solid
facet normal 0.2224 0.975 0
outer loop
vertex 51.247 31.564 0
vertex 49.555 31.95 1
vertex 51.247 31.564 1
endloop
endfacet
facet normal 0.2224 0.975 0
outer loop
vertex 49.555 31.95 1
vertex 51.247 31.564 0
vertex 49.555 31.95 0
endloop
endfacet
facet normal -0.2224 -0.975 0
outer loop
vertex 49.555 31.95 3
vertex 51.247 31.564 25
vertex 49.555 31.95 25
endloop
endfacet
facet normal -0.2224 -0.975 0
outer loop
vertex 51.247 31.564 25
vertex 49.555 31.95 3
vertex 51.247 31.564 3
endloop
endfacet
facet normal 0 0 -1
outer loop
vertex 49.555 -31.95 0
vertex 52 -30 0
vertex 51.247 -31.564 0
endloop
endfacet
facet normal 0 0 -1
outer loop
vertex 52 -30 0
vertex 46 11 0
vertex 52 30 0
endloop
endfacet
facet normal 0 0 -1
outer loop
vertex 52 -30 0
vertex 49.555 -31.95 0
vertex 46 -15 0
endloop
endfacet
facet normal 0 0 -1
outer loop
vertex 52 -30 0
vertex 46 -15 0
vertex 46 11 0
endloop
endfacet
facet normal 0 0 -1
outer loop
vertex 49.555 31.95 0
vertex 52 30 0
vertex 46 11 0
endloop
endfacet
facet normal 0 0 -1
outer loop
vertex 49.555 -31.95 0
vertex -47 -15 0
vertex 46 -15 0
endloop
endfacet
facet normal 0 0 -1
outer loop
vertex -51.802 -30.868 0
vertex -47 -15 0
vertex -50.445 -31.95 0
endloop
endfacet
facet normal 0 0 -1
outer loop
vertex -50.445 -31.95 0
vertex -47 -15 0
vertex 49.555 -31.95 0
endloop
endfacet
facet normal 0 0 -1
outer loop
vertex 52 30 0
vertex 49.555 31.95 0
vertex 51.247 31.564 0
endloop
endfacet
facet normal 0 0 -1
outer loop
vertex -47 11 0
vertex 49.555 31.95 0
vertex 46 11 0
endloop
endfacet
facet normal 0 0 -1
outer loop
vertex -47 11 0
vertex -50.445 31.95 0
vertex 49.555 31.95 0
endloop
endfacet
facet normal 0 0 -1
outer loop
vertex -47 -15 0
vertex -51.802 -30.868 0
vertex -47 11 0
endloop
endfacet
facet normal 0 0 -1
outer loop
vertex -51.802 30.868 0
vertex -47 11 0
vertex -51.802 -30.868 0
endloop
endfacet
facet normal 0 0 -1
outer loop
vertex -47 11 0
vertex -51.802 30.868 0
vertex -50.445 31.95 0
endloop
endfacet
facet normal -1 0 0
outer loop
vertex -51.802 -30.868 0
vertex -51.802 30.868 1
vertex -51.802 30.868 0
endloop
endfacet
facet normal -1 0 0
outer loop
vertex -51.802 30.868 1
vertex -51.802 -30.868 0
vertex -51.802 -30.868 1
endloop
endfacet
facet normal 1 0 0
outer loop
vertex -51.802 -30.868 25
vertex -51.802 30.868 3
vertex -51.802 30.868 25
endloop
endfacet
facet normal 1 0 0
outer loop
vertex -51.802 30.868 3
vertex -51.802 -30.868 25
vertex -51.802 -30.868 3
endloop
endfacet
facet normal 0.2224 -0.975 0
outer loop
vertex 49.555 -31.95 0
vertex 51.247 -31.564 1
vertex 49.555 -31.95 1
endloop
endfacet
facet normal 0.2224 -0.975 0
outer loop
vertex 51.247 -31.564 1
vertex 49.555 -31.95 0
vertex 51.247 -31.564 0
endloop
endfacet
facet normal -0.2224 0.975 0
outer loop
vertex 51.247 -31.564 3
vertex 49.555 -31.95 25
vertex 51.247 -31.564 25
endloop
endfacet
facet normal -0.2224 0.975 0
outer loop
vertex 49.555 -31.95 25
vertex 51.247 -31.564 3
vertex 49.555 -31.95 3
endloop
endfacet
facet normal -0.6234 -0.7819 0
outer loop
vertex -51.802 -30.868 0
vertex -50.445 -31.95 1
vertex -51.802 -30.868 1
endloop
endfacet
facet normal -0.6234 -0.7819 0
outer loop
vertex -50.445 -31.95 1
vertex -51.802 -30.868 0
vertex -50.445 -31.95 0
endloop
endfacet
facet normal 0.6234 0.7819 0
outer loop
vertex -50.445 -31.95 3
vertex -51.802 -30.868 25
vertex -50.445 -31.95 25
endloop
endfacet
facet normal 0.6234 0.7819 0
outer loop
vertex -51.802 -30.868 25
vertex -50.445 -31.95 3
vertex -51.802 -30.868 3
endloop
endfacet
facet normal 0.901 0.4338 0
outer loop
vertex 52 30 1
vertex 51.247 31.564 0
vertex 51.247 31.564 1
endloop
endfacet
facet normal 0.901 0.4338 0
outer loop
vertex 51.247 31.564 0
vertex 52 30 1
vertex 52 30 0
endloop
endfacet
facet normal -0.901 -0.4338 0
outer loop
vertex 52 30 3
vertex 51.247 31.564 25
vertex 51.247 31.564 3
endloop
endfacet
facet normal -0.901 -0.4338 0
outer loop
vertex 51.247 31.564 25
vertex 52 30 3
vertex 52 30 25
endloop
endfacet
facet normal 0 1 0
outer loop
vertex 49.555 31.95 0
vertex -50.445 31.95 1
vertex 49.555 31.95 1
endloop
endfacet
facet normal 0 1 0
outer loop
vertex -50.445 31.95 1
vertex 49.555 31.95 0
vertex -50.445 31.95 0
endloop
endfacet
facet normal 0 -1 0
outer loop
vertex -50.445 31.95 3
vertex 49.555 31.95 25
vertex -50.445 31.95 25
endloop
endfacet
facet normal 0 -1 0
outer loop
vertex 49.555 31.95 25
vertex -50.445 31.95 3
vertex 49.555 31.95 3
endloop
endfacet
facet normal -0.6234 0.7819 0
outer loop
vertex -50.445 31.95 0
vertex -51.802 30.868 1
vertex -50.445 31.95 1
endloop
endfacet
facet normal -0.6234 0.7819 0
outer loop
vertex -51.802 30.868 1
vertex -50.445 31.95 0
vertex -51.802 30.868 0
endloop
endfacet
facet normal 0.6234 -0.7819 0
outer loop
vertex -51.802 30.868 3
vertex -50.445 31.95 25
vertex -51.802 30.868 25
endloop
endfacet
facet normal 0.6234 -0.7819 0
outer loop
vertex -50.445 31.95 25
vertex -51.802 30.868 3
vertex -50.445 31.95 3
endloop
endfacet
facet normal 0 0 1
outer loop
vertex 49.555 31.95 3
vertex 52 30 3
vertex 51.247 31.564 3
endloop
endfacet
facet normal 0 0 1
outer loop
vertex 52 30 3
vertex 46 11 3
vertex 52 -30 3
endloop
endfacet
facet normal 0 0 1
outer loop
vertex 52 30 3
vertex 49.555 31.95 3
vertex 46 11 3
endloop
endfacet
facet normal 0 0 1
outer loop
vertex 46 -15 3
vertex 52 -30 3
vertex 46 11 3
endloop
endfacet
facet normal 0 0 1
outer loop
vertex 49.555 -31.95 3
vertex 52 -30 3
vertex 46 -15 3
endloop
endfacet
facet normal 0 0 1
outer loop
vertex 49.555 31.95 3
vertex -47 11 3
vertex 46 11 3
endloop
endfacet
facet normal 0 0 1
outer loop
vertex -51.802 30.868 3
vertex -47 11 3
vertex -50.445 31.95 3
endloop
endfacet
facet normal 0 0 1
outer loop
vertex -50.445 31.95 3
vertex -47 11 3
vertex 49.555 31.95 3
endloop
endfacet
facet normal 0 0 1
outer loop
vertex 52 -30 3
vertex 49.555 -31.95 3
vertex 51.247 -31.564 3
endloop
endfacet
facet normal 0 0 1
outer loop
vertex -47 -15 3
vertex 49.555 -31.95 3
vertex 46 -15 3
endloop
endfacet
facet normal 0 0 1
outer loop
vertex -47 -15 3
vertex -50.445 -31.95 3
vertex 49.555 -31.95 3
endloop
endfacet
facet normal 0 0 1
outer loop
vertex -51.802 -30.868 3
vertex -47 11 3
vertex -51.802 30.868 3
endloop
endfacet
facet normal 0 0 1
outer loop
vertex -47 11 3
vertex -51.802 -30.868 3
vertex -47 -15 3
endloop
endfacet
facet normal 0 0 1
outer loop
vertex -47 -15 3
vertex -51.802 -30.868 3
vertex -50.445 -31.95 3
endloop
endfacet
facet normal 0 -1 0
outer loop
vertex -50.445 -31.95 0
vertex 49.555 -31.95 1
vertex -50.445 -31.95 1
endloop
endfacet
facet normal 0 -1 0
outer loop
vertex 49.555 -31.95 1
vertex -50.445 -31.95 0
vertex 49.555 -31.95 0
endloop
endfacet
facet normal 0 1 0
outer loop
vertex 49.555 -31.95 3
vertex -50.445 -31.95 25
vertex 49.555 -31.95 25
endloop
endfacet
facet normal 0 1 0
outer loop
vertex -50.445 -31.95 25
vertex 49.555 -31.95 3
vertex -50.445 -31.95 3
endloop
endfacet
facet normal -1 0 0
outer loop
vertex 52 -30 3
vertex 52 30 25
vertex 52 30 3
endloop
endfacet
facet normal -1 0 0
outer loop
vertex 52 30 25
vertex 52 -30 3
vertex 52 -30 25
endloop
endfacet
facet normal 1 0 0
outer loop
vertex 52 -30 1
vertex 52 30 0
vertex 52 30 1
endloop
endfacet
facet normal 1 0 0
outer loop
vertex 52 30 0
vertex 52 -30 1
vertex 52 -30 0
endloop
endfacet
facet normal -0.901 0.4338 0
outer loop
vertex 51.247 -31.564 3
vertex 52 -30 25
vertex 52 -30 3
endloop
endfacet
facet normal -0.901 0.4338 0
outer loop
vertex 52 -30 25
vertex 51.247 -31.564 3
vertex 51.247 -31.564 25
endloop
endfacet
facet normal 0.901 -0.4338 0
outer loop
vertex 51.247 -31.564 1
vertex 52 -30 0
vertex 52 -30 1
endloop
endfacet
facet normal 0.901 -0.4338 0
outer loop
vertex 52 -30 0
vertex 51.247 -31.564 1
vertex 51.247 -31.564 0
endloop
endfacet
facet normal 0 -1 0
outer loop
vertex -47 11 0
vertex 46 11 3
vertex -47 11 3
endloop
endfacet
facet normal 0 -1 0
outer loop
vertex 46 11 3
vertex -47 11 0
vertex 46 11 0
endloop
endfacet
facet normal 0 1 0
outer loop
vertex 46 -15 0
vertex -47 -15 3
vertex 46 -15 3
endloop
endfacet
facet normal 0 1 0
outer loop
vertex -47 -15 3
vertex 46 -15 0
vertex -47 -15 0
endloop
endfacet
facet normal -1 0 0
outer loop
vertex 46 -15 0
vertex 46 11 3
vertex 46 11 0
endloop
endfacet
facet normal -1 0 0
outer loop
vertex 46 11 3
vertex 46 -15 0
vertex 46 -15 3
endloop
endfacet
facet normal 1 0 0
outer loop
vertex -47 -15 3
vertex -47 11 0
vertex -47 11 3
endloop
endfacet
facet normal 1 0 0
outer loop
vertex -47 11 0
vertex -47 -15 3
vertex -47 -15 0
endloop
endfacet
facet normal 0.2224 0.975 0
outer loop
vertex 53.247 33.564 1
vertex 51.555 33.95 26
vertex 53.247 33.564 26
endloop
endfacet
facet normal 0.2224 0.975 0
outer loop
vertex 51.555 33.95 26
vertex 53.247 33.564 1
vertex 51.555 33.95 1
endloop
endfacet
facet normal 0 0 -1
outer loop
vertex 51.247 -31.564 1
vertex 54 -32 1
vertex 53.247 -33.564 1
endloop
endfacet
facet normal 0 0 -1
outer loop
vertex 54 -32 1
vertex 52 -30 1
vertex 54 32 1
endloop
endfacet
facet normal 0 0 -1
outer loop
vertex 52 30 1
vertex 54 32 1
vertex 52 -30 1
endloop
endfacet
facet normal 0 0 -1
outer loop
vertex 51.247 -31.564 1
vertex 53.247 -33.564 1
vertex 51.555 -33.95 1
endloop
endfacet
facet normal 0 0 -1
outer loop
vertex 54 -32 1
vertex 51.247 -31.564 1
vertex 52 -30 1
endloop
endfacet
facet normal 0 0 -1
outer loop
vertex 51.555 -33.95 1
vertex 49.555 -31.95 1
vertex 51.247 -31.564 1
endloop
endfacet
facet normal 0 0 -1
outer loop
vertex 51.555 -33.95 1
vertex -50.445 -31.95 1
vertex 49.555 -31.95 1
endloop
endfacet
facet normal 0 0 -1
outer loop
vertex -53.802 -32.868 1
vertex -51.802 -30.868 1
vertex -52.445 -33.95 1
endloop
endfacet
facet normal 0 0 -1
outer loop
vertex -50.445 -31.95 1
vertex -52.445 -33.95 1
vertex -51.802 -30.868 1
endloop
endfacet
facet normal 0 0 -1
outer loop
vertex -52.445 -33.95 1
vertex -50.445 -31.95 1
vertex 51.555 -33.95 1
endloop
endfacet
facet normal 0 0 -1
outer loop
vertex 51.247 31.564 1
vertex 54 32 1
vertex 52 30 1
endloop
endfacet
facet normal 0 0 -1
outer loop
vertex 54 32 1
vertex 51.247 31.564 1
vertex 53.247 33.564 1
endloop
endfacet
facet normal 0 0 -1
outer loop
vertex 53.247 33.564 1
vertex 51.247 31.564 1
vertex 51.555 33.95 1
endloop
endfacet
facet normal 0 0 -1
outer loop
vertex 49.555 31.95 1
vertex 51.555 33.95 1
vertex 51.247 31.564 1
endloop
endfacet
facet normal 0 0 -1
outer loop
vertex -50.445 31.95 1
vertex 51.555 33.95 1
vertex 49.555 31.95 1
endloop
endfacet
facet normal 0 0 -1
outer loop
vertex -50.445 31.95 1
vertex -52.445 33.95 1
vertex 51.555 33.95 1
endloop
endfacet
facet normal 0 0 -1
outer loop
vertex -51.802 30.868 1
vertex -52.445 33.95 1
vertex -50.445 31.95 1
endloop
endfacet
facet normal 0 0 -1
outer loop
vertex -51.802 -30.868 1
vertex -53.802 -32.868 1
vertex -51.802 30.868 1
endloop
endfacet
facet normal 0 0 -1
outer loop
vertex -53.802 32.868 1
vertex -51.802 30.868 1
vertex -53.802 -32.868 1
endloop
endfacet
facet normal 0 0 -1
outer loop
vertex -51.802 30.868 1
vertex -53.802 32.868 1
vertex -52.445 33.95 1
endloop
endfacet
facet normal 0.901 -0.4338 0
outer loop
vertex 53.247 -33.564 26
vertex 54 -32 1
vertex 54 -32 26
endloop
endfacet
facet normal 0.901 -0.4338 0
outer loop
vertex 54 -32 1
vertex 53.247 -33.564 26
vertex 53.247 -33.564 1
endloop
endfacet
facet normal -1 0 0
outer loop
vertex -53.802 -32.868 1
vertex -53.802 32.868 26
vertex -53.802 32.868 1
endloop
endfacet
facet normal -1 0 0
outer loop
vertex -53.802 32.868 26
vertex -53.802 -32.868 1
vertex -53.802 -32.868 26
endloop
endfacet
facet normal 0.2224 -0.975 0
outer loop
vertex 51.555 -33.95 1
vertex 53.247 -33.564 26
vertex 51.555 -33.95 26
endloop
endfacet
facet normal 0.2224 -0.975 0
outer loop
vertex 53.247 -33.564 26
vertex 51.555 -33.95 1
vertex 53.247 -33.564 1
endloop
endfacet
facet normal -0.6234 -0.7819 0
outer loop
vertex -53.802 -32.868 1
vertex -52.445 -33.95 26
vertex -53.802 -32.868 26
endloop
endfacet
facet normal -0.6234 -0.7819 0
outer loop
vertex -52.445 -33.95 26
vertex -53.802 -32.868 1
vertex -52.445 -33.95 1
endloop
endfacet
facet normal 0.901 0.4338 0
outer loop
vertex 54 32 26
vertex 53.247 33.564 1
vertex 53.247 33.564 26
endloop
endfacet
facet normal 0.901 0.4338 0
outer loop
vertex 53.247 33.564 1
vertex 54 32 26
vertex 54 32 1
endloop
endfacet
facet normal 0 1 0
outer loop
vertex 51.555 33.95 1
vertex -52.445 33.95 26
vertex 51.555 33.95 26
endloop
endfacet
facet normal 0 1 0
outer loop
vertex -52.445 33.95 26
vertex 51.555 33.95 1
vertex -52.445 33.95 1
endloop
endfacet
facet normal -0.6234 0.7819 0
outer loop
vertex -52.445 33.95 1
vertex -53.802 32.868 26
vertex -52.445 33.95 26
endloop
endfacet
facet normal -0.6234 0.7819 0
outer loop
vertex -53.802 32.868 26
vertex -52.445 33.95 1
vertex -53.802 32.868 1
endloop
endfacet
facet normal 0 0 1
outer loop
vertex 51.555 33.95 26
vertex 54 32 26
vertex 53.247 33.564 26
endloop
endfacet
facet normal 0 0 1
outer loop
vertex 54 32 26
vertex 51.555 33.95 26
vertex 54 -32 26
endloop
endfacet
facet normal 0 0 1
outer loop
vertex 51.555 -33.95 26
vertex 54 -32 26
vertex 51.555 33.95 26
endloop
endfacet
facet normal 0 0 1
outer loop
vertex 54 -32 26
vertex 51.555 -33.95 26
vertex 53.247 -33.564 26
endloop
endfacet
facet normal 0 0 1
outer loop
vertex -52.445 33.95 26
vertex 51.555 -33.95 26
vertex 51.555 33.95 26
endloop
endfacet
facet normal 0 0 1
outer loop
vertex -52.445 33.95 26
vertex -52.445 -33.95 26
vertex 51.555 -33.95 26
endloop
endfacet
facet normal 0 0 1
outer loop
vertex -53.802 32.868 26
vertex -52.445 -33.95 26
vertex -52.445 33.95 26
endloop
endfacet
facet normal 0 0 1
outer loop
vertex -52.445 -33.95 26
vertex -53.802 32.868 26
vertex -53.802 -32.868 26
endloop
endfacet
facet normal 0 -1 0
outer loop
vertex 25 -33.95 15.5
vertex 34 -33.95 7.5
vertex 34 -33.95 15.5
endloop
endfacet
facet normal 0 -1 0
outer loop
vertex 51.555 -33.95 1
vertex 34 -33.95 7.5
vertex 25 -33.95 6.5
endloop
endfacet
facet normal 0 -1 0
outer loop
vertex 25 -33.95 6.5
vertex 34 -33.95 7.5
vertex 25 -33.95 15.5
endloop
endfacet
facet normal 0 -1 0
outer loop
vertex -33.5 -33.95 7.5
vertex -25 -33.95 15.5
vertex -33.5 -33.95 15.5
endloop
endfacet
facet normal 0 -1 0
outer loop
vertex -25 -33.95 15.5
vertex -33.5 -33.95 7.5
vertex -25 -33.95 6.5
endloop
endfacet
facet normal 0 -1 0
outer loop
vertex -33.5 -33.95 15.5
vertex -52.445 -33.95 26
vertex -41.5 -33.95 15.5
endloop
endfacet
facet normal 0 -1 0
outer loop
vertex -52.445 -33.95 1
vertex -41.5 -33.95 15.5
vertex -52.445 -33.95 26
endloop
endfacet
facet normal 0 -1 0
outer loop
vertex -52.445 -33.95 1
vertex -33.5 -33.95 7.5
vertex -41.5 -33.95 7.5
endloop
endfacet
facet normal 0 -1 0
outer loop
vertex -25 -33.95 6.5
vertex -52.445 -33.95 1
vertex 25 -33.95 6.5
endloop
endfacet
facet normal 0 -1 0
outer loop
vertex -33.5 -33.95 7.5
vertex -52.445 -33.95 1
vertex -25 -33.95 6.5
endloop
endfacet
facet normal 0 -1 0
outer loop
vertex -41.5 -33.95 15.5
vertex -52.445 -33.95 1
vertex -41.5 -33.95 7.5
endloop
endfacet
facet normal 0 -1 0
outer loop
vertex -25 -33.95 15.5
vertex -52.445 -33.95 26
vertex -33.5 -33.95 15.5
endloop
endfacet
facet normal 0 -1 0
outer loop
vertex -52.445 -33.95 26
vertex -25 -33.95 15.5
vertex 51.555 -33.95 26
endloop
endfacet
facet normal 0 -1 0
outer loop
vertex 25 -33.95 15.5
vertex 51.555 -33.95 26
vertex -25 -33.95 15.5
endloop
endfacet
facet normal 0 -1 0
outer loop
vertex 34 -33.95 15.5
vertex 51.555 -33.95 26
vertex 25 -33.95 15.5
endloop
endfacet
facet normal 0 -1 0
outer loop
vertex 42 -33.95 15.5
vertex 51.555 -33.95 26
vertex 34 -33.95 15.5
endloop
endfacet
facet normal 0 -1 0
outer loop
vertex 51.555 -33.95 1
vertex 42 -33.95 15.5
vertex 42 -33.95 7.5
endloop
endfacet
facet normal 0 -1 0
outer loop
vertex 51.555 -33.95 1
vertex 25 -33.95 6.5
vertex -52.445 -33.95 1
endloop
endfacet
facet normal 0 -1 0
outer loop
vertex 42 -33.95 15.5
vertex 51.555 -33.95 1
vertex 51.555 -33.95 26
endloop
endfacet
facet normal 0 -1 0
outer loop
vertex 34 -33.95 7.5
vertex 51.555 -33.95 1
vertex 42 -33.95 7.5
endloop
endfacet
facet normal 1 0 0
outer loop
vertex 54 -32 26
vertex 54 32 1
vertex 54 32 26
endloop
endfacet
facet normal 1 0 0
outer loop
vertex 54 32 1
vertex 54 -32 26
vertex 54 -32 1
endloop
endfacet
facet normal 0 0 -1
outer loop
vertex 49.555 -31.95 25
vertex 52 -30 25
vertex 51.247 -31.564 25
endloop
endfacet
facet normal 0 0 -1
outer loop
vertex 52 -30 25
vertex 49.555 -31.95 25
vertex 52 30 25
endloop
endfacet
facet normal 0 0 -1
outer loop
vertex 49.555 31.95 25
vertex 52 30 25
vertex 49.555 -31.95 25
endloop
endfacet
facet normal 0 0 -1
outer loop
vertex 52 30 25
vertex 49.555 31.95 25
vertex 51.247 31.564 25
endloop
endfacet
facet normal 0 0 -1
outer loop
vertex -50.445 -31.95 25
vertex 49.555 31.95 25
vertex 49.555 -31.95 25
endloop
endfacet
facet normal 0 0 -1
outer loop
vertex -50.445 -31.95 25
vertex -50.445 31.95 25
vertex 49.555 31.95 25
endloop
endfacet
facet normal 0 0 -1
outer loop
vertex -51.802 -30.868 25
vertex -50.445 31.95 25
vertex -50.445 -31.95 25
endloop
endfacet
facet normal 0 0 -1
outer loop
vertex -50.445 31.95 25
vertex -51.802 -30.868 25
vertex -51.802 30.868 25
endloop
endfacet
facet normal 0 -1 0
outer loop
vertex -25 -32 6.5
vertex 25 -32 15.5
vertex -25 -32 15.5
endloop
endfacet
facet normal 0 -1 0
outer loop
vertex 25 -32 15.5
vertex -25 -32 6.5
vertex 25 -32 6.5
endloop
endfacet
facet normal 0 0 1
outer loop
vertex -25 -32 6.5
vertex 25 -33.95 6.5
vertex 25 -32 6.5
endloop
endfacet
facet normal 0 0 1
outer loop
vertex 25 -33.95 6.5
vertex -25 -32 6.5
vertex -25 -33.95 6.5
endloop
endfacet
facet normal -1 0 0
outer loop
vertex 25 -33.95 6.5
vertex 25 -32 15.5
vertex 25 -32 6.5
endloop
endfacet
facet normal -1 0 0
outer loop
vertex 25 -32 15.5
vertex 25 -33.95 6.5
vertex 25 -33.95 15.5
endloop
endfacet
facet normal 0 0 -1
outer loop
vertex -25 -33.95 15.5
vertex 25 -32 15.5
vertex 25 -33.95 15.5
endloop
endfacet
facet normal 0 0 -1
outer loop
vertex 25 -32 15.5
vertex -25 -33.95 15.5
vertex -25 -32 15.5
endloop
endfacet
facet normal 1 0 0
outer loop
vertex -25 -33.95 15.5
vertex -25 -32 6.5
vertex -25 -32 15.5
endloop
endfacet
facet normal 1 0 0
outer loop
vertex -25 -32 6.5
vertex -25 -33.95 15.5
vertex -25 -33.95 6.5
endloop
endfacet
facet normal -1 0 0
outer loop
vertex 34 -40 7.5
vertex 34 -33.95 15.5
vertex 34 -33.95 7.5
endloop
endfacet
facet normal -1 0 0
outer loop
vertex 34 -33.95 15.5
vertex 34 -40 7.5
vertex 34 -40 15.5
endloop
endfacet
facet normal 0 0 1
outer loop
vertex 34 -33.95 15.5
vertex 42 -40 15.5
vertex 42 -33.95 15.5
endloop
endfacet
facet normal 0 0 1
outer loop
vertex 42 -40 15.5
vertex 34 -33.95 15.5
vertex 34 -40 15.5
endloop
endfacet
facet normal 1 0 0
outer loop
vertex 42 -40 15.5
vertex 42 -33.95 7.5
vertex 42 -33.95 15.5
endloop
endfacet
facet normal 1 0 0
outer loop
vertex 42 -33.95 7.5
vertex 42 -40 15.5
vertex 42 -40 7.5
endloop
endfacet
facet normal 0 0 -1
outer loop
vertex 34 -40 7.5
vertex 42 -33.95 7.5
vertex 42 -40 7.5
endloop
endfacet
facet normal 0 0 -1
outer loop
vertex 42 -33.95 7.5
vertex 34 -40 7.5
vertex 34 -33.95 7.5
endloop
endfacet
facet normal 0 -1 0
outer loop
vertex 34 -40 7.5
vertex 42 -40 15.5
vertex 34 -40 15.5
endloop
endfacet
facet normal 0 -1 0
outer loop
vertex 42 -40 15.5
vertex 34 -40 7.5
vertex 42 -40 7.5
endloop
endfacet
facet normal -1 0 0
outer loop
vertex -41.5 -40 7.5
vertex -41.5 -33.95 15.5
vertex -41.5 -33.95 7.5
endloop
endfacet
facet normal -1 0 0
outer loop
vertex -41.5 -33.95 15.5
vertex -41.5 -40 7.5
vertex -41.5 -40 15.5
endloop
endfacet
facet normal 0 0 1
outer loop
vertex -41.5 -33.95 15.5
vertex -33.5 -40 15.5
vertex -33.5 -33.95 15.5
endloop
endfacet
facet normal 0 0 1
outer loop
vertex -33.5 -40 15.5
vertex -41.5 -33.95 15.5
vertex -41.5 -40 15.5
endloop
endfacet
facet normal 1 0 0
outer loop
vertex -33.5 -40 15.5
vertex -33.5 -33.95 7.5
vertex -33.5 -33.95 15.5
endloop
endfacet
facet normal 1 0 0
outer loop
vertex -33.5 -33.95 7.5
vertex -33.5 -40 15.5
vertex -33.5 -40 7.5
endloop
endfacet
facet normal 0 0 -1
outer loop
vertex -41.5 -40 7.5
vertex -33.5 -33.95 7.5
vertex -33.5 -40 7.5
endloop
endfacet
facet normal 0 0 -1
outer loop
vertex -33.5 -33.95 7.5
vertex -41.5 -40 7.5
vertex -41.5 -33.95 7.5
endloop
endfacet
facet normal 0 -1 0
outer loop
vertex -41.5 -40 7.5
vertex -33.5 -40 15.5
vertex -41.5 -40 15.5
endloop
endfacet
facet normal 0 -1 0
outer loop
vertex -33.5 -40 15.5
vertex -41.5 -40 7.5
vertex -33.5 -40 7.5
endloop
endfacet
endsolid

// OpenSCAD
x = 50;
y = 30;
z=0;
x1 = 52;
y1 = 32;
z=0;
h1 = 25;
x2 = 50;
y2 = 30;
h2 = 25;
x3 = 50;
y3 = 30;
h3 = 24;
LCD_x = 26;
LCD_y = 93; 
height_top = 3;
corner_radius = 2;
corner_radiusb = 2;
extend = 1; //Show inside Enclosure [20 is closing enclosure number.]

module top(){
difference(){
difference(){
    color("DarkGrey")
 hull(){
    translate ([x,y,z]){
    cylinder (r=corner_radius, h=height_top);
}
    translate ([-x,y,z]){
    cylinder (r=corner_radius, h=height_top);
}
    translate ([-x,-y,z]){
    cylinder (r=corner_radius, h=height_top);
}
    translate ([x,-y,z]){
    cylinder (r=corner_radius, h=height_top);
}
}
}

 //LCD Hole 1
 translate ([46,-15,-1.5])
 rotate ([0,0,90])
 cube([LCD_x,LCD_y,10]);
}
}


module box(){
//OUTSIDE HOLLOW
difference(){
color("DarkGrey")
hull(){
translate([x1,y1,extend]){
    cylinder (r=corner_radius, h=h1);
}
    translate ([-x1,y1,extend]){
    cylinder (r=corner_radius, h=h1);
}
    translate ([-x1,-y1,extend]){
    cylinder (r=corner_radius, h=h1);
}
    translate ([x1,-y1,extend]){
    cylinder (r=corner_radius, h=h1);
}
}
//INSIDE HOLLOW
hull(){
translate([x2,y2,(extend+11.5)]){
    cylinder (r=corner_radiusb, h=h2, center=true);
}
    translate ([-x2,y2,(extend+11.5)]){
    cylinder (r=corner_radiusb, h=h2, center=true);
}
    translate ([-x2,-y2,(extend+11.5)]){
    cylinder (r=corner_radiusb, h=h2, center=true);
}
    translate ([x2,-y2,(extend+11.5)]){
    cylinder (r=corner_radiusb, h=h2, center=true);
    }
}

//LCD Hole 2
translate ([25,-35,15.5])
rotate ([0,90,90])
cube([9,50,3]);
}
}


translate ([34,-40,7.5])
cube([8,8,8]);

translate ([-41.5,-40,7.5])
cube([8,8,8]);

//Trying to make a lip (Not working)
//INSIDER HOLLOW
//hull(){
//translate([x2,y2,(extend+11.5)]){
//    cylinder (r=corner_radiusb, h=h3, center=true);
//}
//    translate ([-x2,y2,(extend+11.5)]){
//    cylinder (r=corner_radiusb, h=h3, center=true);
//}
//    translate ([-x2,-y2,(extend+11.5)]){
//    cylinder (r=corner_radiusb, h=h3, center=true);
//}
//    translate ([x2,-y2,(extend+11.5)]){
//    cylinder (r=corner_radiusb, h=h3, center=true);
//    }
//}
//}
 

top();
box();
